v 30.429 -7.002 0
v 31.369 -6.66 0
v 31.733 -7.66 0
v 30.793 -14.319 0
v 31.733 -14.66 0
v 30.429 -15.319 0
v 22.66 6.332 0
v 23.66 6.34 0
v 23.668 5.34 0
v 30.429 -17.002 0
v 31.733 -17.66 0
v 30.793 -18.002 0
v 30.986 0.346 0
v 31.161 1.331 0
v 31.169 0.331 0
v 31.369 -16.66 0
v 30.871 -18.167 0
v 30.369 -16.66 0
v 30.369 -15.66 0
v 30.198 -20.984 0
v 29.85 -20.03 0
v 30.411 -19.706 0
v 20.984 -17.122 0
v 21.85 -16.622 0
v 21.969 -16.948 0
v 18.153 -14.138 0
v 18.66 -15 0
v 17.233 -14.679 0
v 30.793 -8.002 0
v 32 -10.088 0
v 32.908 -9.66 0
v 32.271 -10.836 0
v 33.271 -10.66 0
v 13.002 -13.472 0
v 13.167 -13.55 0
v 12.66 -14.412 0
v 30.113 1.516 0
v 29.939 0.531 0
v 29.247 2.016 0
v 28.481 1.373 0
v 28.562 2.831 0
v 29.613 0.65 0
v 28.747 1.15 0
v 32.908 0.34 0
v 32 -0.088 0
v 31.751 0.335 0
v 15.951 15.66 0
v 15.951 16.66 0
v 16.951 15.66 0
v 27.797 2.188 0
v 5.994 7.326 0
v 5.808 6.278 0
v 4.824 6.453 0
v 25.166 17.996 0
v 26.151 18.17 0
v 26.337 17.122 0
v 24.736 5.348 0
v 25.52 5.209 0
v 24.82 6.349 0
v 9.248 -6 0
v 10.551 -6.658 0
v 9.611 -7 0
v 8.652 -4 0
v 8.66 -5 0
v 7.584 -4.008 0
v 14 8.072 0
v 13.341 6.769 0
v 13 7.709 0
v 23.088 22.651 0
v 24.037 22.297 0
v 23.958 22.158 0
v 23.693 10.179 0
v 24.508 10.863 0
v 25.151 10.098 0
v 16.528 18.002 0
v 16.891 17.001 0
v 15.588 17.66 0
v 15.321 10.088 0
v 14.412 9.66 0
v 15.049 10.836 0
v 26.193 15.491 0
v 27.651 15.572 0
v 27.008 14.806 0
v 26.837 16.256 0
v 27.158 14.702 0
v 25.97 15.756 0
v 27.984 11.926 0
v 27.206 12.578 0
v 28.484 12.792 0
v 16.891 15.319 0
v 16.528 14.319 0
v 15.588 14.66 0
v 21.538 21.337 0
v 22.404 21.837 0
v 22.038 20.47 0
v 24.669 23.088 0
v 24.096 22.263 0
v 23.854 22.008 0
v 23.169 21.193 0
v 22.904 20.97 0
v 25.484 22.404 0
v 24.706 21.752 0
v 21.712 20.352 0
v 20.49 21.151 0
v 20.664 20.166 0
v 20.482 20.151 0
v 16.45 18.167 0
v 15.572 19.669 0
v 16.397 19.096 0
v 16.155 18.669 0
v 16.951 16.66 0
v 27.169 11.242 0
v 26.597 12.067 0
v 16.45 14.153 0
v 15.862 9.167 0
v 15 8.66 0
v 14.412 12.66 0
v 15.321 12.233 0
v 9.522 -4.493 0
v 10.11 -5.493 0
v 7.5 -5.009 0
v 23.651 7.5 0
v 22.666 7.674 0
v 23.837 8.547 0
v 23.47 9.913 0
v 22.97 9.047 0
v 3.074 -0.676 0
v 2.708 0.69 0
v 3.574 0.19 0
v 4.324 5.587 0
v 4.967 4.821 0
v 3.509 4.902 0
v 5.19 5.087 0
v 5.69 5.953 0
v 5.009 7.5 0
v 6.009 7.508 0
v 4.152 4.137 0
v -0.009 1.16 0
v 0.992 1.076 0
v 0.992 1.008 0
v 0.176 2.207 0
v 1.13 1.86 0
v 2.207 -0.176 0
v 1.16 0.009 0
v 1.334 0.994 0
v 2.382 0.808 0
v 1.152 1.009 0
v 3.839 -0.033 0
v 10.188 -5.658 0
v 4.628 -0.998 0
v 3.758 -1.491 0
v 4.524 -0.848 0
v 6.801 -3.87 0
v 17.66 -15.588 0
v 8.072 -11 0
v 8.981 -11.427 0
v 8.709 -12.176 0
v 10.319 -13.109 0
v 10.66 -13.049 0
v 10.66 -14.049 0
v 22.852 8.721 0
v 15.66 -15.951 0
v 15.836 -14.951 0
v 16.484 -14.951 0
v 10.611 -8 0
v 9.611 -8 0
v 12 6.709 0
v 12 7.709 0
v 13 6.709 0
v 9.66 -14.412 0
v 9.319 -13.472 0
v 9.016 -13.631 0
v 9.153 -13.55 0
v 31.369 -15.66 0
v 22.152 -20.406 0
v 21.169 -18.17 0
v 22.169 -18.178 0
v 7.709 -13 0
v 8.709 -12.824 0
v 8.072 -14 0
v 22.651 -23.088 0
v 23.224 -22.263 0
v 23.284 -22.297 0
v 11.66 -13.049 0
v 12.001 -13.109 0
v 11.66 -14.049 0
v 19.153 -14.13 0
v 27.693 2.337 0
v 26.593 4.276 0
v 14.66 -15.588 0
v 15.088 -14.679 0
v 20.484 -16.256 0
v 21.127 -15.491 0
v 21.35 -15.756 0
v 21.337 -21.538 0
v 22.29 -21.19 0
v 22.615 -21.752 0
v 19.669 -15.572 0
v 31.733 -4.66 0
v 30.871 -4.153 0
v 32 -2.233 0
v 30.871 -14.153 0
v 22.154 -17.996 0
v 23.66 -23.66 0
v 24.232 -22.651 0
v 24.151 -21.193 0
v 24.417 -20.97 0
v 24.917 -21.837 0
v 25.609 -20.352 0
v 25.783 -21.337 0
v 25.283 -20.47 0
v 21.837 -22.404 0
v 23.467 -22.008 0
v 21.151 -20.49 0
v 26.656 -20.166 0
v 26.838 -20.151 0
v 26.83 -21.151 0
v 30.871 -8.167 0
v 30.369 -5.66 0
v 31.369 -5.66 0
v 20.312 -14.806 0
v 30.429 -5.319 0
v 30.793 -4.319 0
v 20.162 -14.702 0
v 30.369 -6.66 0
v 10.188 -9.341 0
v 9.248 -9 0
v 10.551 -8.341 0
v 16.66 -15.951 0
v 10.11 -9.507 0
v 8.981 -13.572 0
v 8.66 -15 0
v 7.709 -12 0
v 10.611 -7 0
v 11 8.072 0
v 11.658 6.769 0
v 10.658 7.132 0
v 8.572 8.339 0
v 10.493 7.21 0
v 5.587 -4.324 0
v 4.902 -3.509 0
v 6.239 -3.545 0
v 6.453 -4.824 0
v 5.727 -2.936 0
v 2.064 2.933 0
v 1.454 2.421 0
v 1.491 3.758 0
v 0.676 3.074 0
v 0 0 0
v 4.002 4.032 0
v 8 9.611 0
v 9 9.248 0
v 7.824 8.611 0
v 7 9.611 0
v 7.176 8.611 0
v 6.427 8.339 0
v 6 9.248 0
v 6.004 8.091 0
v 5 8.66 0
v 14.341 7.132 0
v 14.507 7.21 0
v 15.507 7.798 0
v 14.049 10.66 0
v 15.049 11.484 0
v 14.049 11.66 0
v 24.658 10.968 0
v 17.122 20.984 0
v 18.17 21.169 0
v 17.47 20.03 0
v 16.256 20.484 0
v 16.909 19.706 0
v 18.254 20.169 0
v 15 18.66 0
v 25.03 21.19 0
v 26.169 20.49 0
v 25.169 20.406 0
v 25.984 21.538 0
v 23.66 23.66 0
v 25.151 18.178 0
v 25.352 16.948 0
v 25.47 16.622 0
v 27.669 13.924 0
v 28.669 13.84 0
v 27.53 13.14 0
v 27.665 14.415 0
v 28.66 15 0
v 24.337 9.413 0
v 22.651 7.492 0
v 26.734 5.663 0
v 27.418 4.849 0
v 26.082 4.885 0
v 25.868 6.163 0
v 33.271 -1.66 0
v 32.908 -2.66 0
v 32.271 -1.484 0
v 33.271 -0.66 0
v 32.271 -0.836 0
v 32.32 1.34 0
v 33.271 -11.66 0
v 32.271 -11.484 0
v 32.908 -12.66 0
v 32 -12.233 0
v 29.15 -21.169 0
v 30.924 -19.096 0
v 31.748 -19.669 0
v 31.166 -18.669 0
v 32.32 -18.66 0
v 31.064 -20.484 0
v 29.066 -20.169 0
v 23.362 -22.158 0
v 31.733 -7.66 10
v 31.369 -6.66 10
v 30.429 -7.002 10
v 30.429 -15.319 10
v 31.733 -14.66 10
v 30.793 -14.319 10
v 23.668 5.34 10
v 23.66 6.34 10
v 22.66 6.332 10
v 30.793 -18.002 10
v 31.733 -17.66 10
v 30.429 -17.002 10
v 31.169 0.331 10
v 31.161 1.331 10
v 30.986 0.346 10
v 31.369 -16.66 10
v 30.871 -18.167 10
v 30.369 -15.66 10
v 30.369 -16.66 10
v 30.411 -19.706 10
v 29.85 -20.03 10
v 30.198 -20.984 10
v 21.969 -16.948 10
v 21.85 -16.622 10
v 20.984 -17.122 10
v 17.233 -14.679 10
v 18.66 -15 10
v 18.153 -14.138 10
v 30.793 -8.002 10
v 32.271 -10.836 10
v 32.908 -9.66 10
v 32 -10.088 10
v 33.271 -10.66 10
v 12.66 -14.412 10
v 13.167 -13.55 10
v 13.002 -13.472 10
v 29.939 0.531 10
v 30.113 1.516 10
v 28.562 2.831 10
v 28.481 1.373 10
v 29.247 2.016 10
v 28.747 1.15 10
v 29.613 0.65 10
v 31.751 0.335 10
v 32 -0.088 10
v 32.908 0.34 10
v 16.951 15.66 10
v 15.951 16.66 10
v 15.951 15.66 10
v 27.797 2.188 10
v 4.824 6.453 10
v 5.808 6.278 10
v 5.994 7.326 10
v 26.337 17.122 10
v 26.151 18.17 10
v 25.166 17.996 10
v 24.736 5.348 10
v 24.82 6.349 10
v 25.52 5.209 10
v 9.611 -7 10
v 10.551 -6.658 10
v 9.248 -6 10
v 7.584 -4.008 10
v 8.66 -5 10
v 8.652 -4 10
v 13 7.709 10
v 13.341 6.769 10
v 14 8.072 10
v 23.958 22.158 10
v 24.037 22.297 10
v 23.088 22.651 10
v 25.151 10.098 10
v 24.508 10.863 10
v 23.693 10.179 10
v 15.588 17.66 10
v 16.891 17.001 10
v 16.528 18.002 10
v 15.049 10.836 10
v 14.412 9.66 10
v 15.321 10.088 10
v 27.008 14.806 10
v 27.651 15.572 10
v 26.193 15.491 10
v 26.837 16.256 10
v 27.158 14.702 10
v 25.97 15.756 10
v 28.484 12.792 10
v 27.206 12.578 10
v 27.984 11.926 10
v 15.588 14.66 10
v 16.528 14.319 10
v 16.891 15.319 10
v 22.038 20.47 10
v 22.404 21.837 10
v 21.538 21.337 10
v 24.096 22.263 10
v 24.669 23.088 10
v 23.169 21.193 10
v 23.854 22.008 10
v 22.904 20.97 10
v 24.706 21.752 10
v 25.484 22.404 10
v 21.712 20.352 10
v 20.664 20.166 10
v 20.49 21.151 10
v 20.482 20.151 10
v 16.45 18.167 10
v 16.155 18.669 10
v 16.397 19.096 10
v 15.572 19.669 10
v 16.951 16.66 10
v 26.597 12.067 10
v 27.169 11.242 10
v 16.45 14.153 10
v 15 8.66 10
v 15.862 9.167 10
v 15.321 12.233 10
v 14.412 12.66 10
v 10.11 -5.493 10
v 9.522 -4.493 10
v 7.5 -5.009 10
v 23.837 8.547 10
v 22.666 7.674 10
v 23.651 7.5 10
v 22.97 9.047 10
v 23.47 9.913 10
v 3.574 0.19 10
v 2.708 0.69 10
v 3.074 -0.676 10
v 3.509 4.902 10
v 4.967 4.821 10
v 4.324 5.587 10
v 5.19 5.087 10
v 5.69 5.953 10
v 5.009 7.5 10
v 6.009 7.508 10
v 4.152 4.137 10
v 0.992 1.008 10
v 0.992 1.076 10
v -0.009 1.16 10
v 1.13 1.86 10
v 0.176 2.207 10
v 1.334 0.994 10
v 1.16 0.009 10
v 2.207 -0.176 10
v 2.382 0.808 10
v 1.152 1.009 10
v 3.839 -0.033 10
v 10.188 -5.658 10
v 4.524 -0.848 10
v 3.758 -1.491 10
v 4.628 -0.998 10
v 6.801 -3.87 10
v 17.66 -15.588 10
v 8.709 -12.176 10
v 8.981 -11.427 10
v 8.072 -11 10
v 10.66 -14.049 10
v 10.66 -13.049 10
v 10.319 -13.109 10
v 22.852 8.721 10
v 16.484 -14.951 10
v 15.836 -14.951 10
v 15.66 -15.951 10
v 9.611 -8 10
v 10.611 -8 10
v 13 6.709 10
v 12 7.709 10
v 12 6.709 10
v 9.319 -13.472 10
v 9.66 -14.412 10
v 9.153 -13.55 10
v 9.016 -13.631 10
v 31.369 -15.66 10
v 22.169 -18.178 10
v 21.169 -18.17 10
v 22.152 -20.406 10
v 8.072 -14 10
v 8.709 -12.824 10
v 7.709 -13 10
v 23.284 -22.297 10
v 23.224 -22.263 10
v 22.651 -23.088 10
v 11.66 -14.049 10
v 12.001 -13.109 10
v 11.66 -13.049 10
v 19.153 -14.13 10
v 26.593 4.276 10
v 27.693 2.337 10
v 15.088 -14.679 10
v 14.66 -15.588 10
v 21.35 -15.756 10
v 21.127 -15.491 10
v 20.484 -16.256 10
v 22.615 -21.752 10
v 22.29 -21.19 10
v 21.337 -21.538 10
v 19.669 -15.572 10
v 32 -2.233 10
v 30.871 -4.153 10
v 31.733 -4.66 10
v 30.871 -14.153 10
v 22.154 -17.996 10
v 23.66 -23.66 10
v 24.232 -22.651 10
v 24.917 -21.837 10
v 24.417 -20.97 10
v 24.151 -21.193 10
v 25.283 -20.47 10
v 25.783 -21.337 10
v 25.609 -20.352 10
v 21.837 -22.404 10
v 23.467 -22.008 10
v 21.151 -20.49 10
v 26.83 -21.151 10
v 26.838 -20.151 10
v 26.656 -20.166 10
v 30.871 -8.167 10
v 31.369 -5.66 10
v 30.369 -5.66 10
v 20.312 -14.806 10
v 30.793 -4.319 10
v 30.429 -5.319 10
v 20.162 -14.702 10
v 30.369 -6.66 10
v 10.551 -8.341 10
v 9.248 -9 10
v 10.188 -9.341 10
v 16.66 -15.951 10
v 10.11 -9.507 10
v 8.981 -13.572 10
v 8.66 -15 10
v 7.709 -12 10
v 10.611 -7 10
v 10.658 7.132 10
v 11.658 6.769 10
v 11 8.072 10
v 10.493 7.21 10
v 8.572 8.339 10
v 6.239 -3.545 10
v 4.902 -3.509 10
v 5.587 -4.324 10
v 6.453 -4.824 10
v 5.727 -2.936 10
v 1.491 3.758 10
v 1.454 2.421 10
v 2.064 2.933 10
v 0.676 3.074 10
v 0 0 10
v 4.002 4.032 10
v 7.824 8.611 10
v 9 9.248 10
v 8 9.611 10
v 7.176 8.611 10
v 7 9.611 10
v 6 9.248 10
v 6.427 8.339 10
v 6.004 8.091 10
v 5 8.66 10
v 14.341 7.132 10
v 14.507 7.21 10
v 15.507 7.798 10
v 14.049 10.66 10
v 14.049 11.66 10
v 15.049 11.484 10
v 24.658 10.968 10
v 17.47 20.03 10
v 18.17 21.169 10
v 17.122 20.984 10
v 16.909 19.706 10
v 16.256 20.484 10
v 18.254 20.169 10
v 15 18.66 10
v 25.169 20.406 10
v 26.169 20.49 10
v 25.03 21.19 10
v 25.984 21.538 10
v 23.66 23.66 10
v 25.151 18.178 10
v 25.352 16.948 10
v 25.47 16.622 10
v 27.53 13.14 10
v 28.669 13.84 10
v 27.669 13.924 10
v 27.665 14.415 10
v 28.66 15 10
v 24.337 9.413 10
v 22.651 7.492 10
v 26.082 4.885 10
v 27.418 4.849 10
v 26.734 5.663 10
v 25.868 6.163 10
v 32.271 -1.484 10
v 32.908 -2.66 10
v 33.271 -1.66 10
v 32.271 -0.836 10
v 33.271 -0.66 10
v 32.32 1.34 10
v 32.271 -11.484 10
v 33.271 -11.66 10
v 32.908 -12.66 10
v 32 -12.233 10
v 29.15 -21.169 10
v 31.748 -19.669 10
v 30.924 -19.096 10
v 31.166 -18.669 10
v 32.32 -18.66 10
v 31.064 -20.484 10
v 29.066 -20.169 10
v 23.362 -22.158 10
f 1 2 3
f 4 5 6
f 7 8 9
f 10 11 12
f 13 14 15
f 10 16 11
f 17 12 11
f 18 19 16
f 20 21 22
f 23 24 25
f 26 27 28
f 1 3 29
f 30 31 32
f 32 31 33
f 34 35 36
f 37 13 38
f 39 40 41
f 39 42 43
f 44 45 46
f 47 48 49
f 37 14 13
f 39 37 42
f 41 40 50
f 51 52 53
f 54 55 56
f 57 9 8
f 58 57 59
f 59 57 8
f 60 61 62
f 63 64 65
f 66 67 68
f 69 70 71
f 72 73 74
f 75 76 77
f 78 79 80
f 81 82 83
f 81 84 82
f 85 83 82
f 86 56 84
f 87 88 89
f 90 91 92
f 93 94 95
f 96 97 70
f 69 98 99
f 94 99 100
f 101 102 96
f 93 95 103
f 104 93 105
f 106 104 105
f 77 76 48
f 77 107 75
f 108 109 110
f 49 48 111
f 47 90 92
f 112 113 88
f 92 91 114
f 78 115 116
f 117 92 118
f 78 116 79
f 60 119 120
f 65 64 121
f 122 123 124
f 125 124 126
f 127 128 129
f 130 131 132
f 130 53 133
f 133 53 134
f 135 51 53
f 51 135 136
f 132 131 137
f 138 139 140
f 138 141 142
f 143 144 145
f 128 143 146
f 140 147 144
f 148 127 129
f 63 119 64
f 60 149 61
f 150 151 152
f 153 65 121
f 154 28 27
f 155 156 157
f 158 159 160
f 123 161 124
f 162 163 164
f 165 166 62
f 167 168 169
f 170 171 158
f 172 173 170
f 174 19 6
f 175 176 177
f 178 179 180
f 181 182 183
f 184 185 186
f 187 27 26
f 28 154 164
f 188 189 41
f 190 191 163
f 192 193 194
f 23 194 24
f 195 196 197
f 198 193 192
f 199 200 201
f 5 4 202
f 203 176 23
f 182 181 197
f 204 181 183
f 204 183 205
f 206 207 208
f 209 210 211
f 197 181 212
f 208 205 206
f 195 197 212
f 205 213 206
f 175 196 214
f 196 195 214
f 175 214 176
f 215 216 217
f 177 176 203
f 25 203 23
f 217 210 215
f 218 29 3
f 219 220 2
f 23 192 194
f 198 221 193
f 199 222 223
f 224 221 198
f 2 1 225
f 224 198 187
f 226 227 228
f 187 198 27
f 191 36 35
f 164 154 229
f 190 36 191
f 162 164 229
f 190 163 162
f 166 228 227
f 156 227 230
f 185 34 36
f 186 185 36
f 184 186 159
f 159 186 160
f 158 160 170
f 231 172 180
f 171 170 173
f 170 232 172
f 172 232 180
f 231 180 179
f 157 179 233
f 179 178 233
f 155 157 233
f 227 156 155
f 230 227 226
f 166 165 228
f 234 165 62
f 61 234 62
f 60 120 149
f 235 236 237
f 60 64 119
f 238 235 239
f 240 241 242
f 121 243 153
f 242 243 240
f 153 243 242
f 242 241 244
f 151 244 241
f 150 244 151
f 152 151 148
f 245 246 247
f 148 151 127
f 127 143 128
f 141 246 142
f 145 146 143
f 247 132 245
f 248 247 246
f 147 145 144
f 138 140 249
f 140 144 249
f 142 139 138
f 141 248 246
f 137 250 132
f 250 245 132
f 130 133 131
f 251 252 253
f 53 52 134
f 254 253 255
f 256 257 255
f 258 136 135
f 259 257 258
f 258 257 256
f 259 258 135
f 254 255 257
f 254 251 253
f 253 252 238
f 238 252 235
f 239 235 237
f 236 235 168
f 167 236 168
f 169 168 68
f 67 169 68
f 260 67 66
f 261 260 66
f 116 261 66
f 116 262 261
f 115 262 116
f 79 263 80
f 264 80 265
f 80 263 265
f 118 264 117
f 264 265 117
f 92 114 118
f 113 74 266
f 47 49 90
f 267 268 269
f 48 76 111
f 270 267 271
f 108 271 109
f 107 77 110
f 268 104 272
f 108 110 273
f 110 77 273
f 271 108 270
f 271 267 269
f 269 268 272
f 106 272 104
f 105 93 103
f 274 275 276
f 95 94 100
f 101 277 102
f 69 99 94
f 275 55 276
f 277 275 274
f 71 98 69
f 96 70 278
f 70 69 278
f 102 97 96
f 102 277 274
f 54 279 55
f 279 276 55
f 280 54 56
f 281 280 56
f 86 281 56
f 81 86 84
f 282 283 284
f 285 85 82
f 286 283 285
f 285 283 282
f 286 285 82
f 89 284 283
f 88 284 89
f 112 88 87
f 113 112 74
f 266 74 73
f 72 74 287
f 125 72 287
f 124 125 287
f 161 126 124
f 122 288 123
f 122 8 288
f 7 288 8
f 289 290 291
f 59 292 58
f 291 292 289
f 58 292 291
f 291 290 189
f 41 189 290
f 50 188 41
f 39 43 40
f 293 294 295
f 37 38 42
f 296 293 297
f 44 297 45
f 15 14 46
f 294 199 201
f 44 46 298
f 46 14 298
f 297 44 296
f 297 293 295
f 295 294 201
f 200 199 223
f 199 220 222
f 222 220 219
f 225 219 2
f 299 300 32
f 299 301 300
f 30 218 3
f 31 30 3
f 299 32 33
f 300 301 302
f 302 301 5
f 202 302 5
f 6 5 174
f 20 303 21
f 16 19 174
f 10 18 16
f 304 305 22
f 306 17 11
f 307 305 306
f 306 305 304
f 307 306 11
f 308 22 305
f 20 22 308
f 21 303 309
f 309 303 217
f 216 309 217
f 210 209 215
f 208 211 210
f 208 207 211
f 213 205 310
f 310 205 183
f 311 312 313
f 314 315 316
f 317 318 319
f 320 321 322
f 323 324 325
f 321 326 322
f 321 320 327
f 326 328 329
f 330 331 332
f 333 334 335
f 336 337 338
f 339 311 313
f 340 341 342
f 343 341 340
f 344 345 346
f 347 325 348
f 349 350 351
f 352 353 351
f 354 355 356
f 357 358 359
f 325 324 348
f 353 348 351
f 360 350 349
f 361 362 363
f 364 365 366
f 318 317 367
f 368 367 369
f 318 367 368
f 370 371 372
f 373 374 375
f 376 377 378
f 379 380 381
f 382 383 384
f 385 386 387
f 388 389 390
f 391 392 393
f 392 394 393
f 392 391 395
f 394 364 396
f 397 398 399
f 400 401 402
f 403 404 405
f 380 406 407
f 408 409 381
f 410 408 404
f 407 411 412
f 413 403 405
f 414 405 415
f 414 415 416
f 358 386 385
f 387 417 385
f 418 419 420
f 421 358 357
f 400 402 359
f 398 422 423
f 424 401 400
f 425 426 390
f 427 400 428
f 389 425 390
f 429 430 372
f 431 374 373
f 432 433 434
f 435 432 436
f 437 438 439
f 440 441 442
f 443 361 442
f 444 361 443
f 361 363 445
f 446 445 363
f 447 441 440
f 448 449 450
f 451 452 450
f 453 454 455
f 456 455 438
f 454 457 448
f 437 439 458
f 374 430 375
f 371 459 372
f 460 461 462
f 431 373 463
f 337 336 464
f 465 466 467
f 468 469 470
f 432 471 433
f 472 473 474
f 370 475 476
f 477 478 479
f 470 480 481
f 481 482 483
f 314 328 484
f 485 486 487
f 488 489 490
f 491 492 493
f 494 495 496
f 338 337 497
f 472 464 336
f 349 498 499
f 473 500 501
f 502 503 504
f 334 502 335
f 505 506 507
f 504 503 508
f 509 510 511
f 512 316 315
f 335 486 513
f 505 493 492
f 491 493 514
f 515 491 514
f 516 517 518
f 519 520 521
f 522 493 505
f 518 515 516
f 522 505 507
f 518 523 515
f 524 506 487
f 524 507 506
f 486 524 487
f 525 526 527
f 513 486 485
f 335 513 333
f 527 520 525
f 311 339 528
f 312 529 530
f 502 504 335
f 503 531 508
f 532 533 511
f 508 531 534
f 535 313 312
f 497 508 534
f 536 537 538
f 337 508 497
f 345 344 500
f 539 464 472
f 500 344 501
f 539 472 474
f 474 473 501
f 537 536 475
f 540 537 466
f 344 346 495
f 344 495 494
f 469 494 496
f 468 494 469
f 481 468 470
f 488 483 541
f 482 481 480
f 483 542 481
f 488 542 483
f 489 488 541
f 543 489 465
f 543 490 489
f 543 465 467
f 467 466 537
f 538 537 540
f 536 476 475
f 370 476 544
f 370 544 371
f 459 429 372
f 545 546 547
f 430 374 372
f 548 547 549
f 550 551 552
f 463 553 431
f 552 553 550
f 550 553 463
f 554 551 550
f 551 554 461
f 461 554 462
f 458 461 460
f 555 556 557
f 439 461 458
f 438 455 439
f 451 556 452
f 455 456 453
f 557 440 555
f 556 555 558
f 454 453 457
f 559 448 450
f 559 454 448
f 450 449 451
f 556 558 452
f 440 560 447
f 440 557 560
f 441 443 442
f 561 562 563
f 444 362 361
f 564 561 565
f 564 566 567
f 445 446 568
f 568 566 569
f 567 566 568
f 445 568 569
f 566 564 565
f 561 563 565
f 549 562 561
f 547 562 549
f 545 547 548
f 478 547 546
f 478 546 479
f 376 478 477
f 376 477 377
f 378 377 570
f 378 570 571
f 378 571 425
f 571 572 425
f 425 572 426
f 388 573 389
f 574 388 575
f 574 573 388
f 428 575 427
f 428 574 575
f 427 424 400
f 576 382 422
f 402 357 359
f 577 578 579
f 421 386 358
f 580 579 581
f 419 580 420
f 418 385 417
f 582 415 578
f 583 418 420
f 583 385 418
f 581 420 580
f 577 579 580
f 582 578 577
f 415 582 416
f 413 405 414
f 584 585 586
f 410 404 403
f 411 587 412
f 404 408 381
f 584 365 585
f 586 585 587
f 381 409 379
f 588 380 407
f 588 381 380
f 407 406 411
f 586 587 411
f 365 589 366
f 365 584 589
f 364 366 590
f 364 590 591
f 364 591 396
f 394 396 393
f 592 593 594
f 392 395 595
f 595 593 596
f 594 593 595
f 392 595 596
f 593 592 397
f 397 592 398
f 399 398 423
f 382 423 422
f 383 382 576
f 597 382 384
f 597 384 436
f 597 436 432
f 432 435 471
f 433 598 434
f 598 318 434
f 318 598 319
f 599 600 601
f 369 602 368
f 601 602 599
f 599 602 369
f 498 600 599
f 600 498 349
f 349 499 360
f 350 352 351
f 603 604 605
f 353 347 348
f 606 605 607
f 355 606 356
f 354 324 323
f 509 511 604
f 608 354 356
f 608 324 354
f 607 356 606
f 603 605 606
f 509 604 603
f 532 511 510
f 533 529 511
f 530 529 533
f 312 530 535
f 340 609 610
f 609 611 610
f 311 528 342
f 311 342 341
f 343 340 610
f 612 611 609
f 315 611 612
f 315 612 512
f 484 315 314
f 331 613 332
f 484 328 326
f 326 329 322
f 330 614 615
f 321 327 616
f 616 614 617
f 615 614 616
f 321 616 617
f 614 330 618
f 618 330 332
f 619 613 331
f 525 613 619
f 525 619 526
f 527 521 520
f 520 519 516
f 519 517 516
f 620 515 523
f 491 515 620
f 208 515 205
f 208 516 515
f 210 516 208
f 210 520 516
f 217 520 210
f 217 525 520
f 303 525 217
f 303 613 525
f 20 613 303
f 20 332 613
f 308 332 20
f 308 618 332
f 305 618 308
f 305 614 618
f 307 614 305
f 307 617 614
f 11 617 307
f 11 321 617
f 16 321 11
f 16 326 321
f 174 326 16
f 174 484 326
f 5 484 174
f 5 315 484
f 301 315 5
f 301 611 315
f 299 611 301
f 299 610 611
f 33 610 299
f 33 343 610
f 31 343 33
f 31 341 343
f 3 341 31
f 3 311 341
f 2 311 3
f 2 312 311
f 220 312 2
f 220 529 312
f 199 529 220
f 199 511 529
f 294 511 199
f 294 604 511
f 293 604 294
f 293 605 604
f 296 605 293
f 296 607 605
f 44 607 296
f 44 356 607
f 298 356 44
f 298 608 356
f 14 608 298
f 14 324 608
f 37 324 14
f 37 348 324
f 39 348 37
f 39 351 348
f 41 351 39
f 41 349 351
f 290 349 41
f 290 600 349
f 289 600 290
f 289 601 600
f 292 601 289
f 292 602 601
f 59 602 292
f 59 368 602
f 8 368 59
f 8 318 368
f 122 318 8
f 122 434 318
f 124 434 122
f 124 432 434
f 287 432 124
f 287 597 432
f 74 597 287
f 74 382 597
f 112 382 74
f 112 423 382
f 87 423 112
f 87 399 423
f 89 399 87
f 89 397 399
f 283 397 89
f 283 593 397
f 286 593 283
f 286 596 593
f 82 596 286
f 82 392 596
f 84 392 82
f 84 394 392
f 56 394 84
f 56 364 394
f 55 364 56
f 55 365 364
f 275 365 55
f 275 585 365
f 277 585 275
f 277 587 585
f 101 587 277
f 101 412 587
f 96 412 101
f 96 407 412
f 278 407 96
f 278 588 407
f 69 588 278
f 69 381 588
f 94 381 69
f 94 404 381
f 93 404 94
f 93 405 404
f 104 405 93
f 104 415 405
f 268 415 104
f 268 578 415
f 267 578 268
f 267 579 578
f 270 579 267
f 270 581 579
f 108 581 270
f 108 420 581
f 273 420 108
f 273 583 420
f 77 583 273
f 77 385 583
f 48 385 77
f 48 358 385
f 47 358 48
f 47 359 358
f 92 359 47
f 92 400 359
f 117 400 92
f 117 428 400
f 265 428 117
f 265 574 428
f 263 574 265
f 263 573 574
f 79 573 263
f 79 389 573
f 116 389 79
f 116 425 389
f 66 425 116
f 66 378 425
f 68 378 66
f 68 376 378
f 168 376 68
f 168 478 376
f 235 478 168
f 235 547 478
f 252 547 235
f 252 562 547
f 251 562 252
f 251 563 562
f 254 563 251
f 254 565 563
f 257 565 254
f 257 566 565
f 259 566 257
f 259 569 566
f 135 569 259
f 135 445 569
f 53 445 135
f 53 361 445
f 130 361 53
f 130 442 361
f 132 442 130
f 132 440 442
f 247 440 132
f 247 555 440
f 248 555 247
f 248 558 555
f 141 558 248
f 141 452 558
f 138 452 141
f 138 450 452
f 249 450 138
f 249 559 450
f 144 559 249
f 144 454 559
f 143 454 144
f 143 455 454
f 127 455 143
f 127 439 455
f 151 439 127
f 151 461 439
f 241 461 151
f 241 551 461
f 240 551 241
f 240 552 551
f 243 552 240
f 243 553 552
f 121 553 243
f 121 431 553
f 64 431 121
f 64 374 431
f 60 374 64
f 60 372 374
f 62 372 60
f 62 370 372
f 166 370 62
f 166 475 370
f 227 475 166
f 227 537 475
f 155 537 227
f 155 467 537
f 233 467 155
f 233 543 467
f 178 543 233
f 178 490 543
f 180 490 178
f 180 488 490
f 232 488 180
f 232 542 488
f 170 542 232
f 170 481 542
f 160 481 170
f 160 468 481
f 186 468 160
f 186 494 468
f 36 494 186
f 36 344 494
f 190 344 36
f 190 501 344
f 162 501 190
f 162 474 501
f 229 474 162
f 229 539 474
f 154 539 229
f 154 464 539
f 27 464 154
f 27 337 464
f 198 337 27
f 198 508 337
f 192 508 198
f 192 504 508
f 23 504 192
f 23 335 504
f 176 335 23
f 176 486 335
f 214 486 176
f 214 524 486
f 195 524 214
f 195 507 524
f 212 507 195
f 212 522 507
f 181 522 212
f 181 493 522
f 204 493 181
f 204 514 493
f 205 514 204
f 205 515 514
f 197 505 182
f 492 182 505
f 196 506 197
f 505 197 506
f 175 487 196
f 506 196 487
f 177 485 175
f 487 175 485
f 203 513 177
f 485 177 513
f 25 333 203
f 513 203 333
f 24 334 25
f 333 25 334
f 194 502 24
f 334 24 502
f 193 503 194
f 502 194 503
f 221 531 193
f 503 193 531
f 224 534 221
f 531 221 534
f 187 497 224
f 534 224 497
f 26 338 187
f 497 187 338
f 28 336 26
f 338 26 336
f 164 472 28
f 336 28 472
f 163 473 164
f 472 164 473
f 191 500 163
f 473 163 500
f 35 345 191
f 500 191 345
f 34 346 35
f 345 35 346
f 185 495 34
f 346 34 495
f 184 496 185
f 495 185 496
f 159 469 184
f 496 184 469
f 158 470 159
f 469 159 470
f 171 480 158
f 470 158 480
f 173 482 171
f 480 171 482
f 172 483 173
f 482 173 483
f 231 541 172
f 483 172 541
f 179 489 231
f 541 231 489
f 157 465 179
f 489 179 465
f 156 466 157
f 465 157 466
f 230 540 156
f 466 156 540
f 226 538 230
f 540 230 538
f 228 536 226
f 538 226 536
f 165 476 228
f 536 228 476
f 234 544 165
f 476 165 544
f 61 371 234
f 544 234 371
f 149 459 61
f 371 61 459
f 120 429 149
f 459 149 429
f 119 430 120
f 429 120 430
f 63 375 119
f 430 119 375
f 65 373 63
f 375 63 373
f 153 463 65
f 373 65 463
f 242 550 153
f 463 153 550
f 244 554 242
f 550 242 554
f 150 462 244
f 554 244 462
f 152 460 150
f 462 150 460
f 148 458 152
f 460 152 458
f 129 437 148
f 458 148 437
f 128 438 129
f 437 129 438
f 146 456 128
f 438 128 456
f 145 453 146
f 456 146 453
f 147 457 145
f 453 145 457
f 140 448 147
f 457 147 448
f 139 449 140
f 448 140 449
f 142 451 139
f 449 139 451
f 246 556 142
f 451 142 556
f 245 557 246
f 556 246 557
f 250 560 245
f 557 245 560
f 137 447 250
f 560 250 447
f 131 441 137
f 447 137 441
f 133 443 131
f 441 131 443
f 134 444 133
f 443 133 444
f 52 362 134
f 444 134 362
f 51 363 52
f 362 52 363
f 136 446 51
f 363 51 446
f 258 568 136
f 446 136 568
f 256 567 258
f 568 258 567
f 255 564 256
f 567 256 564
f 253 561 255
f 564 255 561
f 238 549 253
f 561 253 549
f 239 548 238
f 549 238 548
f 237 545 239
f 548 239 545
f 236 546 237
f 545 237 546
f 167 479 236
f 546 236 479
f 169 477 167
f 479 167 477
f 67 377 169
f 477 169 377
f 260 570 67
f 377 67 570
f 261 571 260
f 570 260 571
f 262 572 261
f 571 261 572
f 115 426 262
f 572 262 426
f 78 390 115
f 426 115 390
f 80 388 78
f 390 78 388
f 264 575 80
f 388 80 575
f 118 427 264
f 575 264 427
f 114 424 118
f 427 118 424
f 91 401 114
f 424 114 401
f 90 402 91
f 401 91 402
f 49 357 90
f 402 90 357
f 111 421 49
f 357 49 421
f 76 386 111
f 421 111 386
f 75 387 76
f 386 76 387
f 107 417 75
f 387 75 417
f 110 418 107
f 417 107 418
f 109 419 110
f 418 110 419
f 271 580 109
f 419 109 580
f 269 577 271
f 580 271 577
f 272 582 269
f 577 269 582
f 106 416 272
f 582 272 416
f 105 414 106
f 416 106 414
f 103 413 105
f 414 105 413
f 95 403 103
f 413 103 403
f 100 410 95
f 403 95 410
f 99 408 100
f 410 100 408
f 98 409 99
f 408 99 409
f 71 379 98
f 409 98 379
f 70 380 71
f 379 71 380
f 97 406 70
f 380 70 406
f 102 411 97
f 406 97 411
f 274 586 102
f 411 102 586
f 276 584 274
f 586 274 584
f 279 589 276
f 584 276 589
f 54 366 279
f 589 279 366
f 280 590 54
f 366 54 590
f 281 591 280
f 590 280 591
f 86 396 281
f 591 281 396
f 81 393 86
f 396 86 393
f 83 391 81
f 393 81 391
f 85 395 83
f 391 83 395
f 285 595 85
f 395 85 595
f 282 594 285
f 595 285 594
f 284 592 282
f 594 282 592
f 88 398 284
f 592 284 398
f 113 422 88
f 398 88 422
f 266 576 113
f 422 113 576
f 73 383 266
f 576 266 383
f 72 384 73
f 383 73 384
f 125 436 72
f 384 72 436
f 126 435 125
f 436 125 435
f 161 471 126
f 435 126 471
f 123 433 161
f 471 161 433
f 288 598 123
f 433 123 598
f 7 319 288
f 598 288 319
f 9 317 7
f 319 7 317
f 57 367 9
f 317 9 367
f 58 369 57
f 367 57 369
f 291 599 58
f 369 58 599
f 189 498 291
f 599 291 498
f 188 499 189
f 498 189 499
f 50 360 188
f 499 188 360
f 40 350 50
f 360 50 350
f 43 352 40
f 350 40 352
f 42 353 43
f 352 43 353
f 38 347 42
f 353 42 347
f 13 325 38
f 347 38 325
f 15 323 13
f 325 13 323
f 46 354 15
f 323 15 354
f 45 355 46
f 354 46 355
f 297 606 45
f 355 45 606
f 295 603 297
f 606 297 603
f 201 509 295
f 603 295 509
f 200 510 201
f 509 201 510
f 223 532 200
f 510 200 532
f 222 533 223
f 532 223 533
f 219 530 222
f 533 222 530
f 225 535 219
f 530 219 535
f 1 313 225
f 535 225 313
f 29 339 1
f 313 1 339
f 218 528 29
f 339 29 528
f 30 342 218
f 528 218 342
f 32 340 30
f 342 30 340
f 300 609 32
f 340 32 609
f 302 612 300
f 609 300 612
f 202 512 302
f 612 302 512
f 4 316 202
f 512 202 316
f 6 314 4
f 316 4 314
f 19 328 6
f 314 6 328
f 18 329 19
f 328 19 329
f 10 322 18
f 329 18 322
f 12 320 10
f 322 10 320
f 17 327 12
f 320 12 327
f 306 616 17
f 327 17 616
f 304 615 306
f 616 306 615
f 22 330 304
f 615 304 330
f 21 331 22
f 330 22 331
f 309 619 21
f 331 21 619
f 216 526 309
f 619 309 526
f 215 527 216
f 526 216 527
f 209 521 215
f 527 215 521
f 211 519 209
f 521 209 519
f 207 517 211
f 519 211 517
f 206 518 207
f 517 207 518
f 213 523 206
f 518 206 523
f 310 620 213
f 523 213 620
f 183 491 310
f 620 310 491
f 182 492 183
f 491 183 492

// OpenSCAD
// Produce Tile(a,b)
a = 1;
b = 1;

curve_amount = 0.1;

c = cos(60);
s = sin(60);

moves = [
    [0,0],
    [c*b, s*b],
    [b,0],
    [0,a],
    [s*a, c*a],
    [c*b, -s*b],
    [-c*b, -s*b],
    [s*a, -c*a],
    [0, -a],
    [0, -a],
    [-s*a, -c*a],
    [-c*b, s*b],
    [-b, 0],
    [0, a],
    [-s*a, c*a]
];
    
points = [ 
    for (
        i=0, p=moves[0]; 
        i < len(moves)-1; 
        i = i+1, p = p + moves[i]
    )
    p
];
    
function curve_between(a, b, steps=10, curve=curve_amount) = 
    let(
        d = b-a,
        n = [d[1],-d[0]]/norm(d)
    )
    [ for (i=0,t=0; i<steps; i = i+1, t=i/steps) t*b + (1-t)*a + n*sin(-360*t)*curve ]
;

curve_points = [ for(i=0;i<len(points);i=i+1) each curve_between(points[i], points[(i+1) % len(points)]) ];

 module tile(height) {
     linear_extrude(height) {
         scale(10) difference() {
             polygon(curve_points);
             offset(-0.1) polygon(curve_points);
         }
     }
 }
 
tile(10);
